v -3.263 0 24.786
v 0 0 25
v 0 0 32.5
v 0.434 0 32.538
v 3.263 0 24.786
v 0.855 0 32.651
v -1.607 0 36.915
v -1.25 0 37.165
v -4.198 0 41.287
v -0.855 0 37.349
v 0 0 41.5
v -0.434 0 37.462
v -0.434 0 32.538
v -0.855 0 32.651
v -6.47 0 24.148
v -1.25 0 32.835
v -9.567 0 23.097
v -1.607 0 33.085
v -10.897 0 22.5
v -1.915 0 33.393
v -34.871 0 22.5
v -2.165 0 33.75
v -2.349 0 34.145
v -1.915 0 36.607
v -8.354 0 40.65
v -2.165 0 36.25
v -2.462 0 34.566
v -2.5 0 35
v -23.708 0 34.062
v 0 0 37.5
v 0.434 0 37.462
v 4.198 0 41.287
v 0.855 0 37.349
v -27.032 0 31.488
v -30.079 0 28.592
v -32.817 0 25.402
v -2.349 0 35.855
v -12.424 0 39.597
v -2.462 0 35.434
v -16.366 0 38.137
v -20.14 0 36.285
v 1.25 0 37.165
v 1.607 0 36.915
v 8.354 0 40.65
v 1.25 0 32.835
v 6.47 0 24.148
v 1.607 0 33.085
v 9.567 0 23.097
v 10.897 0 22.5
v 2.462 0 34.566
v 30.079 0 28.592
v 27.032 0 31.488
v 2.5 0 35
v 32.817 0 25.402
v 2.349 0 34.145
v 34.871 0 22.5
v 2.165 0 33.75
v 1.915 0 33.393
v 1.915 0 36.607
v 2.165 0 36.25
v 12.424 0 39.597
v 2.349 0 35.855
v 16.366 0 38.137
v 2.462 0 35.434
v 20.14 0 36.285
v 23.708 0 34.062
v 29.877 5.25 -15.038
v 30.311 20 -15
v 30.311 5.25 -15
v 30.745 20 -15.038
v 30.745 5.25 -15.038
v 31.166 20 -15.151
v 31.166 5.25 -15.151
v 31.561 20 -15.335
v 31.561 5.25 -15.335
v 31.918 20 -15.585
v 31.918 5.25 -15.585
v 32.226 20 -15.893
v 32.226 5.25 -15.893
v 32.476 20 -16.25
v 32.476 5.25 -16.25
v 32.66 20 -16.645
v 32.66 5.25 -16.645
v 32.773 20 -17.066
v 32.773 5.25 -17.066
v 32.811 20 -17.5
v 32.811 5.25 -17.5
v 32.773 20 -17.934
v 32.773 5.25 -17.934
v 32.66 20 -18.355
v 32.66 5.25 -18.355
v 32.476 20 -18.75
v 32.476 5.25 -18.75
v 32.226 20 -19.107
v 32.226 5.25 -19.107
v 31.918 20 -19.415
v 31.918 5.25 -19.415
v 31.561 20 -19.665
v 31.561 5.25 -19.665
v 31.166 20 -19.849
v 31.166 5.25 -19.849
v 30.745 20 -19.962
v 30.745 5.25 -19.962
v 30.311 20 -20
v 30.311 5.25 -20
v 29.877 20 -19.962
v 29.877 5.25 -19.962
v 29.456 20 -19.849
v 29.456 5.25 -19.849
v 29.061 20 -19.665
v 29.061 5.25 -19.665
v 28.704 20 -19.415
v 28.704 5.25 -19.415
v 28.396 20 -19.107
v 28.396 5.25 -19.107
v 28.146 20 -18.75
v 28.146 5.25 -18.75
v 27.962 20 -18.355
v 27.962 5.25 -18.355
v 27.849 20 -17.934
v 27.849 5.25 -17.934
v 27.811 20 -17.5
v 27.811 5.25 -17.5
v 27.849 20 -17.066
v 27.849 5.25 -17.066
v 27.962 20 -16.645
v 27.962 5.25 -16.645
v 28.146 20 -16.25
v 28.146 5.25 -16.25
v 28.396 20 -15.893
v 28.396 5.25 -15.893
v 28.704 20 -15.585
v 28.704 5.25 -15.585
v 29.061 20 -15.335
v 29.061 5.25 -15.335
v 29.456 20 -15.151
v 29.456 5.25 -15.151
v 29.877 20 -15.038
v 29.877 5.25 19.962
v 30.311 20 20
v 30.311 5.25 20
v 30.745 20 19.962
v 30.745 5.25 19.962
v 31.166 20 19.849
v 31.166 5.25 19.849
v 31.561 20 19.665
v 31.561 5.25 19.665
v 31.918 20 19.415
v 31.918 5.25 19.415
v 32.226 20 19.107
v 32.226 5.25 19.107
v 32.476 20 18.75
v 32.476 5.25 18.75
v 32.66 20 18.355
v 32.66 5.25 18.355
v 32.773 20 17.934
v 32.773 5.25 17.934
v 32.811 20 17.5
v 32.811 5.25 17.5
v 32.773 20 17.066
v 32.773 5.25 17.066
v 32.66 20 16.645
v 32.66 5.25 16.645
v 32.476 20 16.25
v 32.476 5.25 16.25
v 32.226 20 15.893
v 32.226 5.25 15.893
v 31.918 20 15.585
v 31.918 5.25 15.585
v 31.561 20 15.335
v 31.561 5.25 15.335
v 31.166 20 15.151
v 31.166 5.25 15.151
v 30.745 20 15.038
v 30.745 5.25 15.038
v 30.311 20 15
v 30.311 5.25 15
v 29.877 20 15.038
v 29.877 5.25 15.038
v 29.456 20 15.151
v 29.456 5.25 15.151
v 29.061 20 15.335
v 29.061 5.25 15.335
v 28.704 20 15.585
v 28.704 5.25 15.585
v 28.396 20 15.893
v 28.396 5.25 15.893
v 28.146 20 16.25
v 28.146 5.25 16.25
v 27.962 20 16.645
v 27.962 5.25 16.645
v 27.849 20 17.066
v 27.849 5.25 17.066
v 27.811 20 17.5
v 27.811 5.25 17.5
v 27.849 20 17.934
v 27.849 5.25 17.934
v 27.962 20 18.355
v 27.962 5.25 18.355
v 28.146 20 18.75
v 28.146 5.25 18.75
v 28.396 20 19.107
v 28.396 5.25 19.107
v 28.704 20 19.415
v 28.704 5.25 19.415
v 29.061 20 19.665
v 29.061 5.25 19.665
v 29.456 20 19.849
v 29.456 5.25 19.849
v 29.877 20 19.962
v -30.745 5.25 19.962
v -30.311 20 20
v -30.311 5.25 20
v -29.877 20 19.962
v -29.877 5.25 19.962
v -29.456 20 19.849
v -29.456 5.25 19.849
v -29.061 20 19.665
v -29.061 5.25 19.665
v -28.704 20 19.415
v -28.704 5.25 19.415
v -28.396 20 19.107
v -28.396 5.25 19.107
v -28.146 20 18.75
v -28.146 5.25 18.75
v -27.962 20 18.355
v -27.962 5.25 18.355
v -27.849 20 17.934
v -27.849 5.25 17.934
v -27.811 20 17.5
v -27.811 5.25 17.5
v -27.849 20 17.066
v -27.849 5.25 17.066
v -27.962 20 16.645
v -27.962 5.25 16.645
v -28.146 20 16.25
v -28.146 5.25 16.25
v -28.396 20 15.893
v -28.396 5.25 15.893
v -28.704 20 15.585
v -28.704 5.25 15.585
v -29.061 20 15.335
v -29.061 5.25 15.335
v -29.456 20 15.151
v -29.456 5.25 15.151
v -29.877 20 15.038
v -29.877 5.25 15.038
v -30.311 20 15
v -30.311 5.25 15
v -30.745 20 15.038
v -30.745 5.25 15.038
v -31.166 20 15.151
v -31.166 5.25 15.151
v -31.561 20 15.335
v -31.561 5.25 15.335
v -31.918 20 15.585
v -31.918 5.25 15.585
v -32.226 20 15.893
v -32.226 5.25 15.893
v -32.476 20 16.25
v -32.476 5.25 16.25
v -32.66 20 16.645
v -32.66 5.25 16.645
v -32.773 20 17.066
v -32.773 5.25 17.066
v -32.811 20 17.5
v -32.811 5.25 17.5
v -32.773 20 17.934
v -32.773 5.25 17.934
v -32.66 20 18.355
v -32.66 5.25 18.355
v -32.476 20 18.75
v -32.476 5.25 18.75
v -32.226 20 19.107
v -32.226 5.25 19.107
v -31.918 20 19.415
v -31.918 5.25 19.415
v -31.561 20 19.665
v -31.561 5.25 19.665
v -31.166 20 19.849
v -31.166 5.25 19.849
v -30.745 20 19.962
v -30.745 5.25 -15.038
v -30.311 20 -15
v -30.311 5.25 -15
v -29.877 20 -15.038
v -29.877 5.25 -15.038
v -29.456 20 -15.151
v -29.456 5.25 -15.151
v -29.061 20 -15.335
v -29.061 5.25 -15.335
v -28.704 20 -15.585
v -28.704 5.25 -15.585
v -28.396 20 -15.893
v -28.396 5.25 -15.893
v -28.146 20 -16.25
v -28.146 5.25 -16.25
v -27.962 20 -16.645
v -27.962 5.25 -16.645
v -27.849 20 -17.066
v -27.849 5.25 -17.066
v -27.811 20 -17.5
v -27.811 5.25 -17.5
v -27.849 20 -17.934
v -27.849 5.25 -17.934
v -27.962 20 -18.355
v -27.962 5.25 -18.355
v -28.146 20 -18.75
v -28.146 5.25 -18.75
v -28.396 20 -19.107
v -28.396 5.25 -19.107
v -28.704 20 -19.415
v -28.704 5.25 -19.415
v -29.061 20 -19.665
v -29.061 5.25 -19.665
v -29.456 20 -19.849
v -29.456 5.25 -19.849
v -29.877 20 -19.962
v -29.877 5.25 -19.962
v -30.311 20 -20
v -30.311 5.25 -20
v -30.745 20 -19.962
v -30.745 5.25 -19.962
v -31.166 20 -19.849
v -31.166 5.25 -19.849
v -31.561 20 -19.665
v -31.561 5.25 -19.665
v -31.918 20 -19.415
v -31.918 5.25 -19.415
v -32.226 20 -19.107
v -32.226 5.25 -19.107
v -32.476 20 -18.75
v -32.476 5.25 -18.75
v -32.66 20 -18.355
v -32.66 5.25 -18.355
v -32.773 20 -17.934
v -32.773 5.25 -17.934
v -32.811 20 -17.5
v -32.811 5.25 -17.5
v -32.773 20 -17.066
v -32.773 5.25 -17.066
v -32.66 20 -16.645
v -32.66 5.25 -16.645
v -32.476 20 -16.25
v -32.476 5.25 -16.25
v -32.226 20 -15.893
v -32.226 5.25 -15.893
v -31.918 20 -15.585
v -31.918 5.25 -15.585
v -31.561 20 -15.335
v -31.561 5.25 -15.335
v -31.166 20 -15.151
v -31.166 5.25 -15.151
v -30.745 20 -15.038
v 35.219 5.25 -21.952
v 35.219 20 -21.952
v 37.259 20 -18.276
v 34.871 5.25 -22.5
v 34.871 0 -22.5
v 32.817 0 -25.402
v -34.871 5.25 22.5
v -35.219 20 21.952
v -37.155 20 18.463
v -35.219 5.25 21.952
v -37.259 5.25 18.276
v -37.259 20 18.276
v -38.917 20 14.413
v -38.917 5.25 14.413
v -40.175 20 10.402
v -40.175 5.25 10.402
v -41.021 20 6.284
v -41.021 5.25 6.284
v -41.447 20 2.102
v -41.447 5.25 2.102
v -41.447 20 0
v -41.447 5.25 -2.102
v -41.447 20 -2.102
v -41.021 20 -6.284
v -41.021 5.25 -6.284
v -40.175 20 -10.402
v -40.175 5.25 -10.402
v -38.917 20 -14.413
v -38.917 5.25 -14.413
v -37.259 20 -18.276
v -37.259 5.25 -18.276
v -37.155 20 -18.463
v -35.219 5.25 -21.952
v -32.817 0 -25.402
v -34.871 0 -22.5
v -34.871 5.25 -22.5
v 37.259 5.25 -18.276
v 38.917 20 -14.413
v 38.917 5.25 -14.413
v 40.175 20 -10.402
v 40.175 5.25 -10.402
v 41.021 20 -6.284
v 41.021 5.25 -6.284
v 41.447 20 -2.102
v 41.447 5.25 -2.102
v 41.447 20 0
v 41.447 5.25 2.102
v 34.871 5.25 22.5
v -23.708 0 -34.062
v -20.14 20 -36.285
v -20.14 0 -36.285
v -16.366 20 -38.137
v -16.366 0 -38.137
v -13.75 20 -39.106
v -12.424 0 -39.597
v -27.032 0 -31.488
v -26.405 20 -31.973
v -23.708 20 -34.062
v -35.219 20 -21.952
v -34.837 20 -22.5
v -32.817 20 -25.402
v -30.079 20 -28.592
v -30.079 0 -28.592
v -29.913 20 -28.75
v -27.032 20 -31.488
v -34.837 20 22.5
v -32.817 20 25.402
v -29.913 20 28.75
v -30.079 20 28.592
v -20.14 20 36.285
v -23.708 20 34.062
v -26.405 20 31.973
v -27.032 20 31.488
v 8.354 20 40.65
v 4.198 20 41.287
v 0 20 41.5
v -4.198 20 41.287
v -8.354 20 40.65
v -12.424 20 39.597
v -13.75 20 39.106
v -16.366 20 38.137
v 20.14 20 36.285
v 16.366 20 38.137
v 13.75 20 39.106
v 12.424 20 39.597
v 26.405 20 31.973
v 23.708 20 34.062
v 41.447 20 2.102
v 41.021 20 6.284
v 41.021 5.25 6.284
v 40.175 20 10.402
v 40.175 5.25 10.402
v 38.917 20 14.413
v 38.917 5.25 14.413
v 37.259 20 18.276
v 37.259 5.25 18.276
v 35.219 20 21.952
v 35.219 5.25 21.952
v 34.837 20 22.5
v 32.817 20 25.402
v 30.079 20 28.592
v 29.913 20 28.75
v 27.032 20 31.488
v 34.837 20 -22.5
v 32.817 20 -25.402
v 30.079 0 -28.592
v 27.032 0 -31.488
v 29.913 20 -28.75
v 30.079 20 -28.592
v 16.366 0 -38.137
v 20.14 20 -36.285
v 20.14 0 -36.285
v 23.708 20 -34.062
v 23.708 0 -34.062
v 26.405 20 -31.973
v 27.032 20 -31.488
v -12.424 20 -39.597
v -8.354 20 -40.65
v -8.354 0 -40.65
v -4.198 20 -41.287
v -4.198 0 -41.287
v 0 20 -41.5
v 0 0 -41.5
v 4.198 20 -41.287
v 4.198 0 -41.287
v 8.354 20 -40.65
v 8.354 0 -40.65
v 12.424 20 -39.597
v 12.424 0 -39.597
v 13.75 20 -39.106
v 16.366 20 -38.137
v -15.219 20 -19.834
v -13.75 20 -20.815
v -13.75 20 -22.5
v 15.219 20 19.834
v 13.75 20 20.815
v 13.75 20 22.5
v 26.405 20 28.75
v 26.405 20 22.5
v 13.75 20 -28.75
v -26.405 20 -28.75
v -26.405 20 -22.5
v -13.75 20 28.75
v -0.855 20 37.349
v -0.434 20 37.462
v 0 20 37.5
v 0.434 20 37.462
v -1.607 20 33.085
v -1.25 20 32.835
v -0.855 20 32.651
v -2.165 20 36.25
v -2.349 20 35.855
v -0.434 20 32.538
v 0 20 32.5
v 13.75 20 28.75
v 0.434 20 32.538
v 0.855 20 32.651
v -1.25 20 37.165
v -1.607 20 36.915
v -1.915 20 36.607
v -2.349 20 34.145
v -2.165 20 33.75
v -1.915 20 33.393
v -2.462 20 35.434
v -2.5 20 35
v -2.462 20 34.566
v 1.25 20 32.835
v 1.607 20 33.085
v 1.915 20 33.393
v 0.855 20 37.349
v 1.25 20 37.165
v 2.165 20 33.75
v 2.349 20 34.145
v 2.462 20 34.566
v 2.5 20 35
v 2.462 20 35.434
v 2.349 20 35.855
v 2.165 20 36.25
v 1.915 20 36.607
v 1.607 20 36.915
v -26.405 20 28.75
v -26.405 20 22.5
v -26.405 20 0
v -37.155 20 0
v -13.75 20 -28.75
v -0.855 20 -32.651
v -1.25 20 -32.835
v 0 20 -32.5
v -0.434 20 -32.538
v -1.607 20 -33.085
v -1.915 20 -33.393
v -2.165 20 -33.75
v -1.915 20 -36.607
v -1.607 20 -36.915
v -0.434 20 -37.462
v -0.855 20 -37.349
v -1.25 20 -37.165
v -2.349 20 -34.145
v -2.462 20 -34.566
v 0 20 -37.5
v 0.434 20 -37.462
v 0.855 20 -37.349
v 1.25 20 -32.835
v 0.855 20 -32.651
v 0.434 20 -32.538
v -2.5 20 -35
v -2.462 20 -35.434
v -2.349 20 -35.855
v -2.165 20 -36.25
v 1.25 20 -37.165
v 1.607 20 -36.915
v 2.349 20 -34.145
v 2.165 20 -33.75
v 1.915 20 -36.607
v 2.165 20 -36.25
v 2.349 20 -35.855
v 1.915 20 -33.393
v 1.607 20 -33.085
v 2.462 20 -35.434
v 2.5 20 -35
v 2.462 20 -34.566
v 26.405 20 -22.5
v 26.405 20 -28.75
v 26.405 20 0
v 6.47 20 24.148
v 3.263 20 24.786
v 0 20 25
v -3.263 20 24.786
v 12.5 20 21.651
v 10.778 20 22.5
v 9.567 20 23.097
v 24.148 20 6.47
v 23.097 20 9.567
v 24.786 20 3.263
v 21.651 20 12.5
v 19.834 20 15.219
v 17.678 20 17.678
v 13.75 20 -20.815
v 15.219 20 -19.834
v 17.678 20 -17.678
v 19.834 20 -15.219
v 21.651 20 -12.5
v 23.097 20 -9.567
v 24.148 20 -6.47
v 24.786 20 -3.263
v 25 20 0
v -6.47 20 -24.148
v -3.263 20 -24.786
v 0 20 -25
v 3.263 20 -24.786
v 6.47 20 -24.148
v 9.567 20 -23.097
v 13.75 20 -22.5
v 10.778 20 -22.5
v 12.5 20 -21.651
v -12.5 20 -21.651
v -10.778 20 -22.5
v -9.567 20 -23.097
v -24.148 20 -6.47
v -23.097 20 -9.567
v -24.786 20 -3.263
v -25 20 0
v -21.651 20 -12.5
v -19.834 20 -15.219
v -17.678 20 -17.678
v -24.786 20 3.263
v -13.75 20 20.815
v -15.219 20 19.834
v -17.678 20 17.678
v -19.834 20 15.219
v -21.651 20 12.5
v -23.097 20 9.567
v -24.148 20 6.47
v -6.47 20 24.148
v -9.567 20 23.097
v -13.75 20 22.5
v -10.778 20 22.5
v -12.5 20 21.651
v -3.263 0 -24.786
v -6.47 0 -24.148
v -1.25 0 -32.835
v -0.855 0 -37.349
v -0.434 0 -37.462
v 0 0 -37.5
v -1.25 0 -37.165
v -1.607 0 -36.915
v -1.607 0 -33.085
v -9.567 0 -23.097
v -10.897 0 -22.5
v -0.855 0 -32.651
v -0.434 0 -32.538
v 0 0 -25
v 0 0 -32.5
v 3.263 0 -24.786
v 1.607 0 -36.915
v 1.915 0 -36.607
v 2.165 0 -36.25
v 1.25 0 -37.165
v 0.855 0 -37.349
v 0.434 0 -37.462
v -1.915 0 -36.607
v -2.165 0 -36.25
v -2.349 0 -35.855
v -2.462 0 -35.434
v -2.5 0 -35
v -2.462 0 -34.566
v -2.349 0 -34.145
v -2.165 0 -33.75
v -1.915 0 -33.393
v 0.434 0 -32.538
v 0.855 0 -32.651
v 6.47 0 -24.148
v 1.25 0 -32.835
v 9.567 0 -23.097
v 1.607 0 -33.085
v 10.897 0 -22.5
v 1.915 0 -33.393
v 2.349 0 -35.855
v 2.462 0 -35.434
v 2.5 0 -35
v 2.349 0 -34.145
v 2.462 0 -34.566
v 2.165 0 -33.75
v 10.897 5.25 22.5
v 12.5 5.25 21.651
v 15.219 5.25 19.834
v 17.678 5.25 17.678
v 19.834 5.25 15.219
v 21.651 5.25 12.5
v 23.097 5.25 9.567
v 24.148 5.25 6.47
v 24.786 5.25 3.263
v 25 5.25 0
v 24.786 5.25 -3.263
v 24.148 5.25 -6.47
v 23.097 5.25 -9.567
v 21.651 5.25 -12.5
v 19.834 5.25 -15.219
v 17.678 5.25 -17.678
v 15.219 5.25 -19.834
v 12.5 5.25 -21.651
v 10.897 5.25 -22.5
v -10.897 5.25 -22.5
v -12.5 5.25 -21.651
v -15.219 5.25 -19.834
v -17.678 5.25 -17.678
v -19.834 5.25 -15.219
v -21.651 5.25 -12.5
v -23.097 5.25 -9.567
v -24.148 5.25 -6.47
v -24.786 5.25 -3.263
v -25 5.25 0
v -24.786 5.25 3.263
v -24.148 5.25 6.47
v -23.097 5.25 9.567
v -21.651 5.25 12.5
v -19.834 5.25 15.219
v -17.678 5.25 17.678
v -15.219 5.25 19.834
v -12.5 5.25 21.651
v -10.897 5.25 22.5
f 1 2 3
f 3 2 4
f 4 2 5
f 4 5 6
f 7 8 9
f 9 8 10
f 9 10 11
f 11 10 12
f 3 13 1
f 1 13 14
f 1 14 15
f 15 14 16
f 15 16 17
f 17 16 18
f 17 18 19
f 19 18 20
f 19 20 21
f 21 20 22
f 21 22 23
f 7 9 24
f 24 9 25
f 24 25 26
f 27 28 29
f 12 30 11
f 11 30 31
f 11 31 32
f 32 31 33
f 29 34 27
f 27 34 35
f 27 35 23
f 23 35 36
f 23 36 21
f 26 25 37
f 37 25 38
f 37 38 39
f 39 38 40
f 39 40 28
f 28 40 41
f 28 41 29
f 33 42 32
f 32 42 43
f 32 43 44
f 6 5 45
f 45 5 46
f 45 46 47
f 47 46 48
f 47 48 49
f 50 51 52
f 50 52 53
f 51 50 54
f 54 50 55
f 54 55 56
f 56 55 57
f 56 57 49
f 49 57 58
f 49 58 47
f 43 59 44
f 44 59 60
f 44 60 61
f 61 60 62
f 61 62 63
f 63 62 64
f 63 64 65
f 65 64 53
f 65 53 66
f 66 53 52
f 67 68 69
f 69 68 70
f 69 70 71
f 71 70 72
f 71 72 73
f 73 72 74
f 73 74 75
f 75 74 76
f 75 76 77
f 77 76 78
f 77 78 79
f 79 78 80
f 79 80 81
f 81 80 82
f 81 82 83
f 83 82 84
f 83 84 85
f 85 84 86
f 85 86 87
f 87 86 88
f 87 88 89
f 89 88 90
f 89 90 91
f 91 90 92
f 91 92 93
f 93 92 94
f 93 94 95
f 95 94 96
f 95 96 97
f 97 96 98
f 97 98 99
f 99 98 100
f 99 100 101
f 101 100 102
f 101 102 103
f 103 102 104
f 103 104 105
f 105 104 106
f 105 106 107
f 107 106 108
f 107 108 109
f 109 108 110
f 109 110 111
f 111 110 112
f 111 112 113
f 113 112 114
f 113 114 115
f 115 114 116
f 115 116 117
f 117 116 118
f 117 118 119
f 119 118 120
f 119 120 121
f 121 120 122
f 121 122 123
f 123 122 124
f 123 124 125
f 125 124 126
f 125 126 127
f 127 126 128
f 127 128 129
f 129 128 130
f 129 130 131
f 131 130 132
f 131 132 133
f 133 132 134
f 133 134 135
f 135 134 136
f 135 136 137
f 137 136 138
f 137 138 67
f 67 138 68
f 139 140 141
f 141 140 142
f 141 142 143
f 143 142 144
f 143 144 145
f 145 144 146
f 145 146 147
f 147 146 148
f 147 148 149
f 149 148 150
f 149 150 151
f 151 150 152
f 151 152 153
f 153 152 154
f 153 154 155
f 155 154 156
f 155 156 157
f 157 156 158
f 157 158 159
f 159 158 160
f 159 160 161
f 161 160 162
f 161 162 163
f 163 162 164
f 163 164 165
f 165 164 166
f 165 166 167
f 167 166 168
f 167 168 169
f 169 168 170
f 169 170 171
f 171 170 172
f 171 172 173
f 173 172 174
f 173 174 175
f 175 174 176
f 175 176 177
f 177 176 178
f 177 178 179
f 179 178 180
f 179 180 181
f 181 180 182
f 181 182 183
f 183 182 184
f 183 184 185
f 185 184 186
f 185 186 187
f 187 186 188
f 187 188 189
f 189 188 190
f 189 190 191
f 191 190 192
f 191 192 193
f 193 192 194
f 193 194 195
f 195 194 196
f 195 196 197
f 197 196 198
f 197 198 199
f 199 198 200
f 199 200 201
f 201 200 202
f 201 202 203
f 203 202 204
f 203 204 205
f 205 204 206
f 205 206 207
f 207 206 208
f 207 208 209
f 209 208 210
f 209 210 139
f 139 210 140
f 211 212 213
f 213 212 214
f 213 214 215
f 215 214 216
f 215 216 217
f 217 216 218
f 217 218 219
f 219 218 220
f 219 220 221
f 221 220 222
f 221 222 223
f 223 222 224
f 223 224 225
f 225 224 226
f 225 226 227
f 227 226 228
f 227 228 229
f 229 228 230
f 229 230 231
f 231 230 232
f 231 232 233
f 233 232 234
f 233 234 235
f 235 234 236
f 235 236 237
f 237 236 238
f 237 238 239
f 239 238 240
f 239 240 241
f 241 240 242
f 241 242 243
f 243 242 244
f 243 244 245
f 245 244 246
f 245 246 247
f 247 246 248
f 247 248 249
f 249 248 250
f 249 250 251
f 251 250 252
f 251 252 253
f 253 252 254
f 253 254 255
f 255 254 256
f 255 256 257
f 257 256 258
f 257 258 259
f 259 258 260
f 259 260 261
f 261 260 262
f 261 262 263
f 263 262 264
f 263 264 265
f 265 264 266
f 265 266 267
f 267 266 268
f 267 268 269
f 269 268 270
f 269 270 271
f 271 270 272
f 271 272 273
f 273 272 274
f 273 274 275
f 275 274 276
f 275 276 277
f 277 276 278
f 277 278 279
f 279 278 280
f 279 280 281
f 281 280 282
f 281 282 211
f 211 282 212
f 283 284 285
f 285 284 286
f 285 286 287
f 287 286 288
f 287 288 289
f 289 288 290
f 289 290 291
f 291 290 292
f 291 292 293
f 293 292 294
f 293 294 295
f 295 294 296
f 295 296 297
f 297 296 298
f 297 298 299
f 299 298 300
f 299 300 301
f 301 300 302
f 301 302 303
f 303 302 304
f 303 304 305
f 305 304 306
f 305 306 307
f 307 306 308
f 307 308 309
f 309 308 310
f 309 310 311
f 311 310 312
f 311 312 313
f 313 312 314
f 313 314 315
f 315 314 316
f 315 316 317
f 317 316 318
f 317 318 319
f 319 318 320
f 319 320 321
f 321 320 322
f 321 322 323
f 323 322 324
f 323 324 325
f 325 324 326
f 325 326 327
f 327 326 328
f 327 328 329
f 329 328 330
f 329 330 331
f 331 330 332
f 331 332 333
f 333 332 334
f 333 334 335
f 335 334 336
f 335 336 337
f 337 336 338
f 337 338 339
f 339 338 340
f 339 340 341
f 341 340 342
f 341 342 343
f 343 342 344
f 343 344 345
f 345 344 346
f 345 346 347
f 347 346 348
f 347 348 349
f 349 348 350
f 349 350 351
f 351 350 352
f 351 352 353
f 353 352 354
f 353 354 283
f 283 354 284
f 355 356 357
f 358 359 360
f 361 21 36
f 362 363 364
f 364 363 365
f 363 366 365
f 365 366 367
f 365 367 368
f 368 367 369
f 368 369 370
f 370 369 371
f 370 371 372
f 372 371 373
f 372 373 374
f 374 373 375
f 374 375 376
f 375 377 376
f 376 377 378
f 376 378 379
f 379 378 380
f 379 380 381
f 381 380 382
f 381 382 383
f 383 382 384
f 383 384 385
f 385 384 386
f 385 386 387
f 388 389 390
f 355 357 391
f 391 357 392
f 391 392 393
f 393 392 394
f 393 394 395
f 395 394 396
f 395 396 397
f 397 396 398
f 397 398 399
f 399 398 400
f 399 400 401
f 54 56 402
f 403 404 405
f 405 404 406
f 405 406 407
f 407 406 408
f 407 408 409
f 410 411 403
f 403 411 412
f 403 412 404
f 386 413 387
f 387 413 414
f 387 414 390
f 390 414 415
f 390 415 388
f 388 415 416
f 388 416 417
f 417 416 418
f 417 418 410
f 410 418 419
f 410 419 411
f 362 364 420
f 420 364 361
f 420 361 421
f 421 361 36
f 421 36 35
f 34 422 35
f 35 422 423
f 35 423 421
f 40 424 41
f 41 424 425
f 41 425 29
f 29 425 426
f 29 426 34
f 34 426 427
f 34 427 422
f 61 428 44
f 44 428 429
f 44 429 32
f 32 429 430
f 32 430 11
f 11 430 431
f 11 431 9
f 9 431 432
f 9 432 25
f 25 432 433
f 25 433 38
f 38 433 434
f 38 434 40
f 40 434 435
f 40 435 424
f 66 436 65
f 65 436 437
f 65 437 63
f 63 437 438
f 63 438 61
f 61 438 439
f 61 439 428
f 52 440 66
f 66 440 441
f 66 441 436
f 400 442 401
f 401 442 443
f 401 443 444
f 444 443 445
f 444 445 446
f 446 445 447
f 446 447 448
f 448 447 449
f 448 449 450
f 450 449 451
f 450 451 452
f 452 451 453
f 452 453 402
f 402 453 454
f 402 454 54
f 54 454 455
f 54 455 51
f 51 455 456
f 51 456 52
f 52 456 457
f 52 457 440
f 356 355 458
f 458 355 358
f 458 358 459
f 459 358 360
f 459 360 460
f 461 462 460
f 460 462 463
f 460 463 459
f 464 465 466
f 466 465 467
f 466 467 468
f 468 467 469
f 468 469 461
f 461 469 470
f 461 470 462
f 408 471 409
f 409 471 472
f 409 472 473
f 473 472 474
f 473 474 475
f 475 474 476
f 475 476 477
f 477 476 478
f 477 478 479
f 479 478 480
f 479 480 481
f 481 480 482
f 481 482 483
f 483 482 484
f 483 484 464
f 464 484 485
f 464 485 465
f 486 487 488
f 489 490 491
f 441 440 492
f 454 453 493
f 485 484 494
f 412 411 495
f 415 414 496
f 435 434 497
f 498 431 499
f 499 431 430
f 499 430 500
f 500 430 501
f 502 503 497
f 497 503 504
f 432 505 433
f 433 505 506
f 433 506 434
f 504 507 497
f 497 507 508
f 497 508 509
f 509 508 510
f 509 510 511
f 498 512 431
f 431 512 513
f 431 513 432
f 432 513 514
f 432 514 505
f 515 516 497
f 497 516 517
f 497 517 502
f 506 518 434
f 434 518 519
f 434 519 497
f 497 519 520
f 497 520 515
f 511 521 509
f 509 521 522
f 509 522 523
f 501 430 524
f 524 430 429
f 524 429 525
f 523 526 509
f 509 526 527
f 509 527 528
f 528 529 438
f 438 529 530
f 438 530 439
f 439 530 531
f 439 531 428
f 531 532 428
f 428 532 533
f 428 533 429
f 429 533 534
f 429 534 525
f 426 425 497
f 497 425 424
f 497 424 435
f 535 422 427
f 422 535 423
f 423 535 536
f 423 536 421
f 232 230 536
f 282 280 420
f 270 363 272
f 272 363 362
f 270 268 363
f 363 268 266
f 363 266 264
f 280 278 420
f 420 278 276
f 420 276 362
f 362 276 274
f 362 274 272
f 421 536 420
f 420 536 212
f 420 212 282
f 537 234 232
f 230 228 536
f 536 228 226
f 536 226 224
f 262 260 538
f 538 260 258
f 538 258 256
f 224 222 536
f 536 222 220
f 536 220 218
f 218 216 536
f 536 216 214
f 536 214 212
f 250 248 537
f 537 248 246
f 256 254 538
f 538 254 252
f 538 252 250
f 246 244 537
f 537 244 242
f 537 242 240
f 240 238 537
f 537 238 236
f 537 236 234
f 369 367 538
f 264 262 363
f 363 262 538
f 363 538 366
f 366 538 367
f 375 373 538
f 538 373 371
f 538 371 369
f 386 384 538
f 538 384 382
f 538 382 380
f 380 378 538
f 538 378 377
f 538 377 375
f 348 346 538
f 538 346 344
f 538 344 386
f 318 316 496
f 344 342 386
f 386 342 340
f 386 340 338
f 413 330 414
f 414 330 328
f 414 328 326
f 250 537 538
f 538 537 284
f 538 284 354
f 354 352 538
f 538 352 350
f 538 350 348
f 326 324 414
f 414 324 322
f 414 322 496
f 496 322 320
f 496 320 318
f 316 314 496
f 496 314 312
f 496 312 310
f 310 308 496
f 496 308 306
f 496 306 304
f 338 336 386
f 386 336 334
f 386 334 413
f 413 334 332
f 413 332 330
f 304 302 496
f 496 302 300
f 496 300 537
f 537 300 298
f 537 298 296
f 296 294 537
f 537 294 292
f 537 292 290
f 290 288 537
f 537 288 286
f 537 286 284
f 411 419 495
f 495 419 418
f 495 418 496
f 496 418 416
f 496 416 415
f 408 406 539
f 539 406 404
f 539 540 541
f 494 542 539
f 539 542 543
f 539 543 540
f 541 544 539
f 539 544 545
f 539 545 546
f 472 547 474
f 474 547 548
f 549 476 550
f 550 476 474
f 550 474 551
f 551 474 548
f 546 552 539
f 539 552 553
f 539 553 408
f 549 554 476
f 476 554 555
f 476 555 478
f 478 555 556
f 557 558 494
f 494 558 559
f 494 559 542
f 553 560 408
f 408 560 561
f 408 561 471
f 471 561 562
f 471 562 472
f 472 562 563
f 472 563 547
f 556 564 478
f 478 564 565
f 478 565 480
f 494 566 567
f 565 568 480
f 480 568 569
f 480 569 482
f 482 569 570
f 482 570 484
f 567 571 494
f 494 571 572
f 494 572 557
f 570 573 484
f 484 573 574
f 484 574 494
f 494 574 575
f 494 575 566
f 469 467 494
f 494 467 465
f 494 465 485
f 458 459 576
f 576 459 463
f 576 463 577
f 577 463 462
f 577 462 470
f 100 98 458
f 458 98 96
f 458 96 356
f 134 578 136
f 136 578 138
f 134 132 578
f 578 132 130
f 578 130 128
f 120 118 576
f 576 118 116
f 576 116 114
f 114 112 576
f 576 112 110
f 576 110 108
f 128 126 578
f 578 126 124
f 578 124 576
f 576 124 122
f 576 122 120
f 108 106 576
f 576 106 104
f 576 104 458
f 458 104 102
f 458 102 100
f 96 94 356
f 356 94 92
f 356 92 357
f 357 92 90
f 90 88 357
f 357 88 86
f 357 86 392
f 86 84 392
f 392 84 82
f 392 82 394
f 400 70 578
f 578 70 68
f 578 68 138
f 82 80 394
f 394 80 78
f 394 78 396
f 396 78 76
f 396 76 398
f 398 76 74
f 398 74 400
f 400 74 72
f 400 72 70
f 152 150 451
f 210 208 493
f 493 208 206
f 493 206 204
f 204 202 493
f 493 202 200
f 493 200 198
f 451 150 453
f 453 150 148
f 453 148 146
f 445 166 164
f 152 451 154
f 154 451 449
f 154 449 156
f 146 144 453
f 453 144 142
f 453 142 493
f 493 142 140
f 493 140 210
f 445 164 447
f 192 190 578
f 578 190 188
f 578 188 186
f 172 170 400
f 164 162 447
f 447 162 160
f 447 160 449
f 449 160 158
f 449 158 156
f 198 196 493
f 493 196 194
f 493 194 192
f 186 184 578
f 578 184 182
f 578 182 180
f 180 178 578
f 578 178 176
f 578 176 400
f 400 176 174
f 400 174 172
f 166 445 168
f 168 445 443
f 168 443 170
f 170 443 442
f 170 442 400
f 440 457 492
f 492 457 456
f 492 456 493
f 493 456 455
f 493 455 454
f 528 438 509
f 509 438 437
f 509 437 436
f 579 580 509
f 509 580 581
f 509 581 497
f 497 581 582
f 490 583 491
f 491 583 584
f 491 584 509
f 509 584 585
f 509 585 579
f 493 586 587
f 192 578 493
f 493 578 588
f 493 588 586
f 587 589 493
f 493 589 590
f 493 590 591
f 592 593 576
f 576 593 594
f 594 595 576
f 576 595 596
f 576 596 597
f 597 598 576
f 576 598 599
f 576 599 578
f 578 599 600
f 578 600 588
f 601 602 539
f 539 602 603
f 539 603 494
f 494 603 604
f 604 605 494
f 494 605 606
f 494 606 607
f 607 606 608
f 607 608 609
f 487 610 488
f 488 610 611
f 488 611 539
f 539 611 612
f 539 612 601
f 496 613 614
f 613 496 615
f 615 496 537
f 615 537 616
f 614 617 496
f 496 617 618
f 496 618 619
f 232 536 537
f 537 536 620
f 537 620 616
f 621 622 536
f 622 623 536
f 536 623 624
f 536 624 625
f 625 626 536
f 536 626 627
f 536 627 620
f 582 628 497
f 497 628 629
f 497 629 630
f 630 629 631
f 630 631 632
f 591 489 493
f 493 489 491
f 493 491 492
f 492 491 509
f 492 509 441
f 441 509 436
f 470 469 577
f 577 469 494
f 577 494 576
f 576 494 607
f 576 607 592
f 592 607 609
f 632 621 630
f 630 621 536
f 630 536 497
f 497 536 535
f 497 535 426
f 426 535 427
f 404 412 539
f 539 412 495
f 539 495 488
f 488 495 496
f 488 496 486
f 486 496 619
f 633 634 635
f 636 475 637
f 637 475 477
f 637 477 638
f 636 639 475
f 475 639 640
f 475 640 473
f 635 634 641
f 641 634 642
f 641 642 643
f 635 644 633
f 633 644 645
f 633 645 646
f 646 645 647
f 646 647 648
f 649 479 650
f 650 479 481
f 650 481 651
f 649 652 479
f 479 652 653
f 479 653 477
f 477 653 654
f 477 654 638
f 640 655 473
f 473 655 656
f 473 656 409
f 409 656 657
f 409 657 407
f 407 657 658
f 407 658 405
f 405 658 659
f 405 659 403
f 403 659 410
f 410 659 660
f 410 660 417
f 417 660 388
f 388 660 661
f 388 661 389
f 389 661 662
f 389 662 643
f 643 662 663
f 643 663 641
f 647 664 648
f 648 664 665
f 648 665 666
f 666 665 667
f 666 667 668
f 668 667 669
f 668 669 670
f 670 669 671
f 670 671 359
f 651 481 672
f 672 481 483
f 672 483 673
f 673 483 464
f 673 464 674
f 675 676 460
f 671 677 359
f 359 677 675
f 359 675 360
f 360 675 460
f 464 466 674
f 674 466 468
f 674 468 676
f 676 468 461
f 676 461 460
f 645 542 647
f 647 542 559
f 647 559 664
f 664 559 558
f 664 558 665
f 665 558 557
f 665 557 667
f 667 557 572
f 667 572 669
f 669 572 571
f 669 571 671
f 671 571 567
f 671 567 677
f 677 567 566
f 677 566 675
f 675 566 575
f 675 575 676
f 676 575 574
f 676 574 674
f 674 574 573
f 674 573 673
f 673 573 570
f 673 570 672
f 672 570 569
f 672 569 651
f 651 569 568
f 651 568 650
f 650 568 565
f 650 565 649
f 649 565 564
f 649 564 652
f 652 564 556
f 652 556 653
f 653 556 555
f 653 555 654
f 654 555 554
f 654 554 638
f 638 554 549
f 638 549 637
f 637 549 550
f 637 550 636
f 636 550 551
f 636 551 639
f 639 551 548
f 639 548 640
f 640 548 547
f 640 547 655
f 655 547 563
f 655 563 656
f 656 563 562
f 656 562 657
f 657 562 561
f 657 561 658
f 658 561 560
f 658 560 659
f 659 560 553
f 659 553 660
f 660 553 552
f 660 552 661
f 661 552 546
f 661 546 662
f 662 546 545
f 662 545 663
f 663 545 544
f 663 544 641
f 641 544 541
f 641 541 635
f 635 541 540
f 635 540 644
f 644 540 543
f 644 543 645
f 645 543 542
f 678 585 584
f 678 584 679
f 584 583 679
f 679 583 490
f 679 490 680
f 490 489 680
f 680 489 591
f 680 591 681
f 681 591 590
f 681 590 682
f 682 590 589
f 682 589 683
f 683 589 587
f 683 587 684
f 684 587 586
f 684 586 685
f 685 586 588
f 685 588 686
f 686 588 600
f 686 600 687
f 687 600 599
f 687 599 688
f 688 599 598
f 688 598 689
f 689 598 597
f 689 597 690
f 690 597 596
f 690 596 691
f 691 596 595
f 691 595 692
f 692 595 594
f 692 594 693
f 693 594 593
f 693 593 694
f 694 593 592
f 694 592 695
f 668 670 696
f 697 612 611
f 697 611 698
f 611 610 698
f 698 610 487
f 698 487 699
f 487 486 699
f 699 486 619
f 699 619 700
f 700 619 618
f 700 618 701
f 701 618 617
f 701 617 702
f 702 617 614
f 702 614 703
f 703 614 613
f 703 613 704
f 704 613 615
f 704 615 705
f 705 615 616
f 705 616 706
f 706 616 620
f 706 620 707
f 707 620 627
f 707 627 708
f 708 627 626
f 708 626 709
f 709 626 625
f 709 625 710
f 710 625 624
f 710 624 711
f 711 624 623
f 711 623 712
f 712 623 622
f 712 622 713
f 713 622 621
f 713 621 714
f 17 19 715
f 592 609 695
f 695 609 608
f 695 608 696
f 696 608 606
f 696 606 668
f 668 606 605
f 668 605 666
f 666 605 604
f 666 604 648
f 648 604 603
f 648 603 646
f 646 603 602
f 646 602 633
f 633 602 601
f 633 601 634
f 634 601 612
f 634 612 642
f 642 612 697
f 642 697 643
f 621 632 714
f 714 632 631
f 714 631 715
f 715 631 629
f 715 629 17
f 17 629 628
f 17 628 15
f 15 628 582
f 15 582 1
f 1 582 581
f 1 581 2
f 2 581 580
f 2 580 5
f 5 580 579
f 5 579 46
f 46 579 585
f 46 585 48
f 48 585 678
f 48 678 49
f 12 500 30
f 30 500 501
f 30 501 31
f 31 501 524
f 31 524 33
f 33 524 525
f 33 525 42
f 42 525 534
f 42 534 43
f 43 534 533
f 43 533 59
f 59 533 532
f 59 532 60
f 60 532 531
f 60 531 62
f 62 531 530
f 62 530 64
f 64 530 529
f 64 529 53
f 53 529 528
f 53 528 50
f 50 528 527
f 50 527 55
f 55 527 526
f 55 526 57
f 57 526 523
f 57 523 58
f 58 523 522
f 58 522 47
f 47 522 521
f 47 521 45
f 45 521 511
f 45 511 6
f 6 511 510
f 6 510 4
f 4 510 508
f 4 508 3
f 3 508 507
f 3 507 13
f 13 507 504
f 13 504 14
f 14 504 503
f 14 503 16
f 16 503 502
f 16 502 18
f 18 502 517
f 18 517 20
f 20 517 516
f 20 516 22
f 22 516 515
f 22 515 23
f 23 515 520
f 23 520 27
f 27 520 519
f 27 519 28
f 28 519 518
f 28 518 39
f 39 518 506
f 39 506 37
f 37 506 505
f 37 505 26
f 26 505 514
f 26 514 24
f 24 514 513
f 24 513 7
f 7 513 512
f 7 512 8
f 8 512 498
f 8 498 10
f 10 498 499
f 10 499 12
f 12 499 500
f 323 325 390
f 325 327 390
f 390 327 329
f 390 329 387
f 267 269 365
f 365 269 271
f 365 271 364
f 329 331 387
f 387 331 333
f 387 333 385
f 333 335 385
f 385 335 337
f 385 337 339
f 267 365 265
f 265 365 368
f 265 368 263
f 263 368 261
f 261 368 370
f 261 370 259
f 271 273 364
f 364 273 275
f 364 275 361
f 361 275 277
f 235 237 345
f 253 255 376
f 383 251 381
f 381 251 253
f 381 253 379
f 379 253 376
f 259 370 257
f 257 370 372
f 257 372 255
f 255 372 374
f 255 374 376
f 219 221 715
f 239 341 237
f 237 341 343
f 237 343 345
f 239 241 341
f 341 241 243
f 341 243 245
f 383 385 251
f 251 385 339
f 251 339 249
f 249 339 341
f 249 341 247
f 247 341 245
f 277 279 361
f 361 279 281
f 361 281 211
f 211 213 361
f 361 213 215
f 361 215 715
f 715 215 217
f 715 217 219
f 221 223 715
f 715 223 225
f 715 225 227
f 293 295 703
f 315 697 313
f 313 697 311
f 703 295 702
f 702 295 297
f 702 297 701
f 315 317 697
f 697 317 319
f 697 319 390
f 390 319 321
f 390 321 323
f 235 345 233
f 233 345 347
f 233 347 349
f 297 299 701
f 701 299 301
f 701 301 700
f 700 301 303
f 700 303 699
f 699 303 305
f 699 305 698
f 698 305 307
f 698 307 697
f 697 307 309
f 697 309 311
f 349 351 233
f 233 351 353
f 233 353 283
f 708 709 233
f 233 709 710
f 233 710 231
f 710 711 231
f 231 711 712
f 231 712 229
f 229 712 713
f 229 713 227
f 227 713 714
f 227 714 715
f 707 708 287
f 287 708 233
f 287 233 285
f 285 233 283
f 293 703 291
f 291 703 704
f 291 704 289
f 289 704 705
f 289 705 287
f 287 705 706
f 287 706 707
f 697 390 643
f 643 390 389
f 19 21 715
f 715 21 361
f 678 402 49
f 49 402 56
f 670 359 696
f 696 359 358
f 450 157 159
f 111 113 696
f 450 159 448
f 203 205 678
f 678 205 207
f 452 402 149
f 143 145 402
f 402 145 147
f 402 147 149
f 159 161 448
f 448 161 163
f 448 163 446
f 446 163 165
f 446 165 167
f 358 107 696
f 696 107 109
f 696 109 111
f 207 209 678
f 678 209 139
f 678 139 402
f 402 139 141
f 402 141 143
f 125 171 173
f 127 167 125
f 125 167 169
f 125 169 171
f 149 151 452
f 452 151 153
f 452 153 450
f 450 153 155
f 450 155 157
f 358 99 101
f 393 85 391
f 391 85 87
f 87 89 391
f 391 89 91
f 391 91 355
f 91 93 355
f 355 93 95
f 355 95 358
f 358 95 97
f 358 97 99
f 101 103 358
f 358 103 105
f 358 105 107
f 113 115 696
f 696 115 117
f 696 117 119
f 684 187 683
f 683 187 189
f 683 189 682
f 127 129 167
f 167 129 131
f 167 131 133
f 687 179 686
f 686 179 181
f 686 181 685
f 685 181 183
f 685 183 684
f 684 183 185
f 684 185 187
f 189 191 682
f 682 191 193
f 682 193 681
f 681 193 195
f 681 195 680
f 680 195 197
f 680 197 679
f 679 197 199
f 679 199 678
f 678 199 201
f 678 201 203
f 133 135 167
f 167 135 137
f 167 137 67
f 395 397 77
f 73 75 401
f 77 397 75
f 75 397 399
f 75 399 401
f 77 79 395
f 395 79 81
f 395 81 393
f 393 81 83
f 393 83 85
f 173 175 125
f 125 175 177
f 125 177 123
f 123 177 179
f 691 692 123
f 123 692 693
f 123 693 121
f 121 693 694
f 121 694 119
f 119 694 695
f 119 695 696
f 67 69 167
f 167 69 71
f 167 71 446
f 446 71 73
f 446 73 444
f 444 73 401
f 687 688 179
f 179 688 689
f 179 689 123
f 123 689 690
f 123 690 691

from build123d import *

# Parameters (mm, degrees)
SKETCH1_R          = 41.5
MAIN_PLATE_DEPTH   = 20
SKETCH3_R          = 2.5
SKETCH3_R_2        = 25
MOMO_SPARKO_DEPTH  = 63.004032127
SKETCH4_W          = 90
SKETCH4_H          = 45
CUT_EXTRUDE1_DEPTH = 5.25


with BuildPart() as part:
    # Sketch1 → Main Plate (new body)
    with BuildSketch(Plane(origin=(0, 0, 0), x_dir=(1, 0, 0), z_dir=(0, 1, 0))):
        with Locations(Location((0, 0, 0), (0, 0, 270))):
            Circle(SKETCH1_R)
    extrude(amount=MAIN_PLATE_DEPTH)

    # Sketch3 → Momo - Sparko (cut, through all)
    with BuildSketch(Plane(origin=(0, 20, 0), x_dir=(1, 0, 0), z_dir=(0, 1, 0))):
        with Locations(Location((0, 35, 0), (0, 0, 270))):
            Circle(SKETCH3_R)
        with Locations(Location((0, 0, 0), (0, 0, 270))):
            Circle(SKETCH3_R_2)
        with Locations(Location((30.310889132, 17.5, 0), (0, 0, 270))):
            Circle(SKETCH3_R)
        with Locations(Location((30.310889132, -17.5, 0), (0, 0, 270))):
            Circle(SKETCH3_R)
        with Locations(Location((0, -35, 0), (0, 0, 270))):
            Circle(SKETCH3_R)
        with Locations(Location((-30.310889132, -17.5, 0), (0, 0, 270))):
            Circle(SKETCH3_R)
        with Locations(Location((-30.310889132, 17.5, 0), (0, 0, 270))):
            Circle(SKETCH3_R)
    extrude(amount=-MOMO_SPARKO_DEPTH, mode=Mode.SUBTRACT)

    # Sketch4 → Cut-Extrude1 (cut)
    with BuildSketch(Plane.XZ):
        Rectangle(SKETCH4_W, SKETCH4_H)
    extrude(amount=-CUT_EXTRUDE1_DEPTH, mode=Mode.SUBTRACT)


solid = part.part
